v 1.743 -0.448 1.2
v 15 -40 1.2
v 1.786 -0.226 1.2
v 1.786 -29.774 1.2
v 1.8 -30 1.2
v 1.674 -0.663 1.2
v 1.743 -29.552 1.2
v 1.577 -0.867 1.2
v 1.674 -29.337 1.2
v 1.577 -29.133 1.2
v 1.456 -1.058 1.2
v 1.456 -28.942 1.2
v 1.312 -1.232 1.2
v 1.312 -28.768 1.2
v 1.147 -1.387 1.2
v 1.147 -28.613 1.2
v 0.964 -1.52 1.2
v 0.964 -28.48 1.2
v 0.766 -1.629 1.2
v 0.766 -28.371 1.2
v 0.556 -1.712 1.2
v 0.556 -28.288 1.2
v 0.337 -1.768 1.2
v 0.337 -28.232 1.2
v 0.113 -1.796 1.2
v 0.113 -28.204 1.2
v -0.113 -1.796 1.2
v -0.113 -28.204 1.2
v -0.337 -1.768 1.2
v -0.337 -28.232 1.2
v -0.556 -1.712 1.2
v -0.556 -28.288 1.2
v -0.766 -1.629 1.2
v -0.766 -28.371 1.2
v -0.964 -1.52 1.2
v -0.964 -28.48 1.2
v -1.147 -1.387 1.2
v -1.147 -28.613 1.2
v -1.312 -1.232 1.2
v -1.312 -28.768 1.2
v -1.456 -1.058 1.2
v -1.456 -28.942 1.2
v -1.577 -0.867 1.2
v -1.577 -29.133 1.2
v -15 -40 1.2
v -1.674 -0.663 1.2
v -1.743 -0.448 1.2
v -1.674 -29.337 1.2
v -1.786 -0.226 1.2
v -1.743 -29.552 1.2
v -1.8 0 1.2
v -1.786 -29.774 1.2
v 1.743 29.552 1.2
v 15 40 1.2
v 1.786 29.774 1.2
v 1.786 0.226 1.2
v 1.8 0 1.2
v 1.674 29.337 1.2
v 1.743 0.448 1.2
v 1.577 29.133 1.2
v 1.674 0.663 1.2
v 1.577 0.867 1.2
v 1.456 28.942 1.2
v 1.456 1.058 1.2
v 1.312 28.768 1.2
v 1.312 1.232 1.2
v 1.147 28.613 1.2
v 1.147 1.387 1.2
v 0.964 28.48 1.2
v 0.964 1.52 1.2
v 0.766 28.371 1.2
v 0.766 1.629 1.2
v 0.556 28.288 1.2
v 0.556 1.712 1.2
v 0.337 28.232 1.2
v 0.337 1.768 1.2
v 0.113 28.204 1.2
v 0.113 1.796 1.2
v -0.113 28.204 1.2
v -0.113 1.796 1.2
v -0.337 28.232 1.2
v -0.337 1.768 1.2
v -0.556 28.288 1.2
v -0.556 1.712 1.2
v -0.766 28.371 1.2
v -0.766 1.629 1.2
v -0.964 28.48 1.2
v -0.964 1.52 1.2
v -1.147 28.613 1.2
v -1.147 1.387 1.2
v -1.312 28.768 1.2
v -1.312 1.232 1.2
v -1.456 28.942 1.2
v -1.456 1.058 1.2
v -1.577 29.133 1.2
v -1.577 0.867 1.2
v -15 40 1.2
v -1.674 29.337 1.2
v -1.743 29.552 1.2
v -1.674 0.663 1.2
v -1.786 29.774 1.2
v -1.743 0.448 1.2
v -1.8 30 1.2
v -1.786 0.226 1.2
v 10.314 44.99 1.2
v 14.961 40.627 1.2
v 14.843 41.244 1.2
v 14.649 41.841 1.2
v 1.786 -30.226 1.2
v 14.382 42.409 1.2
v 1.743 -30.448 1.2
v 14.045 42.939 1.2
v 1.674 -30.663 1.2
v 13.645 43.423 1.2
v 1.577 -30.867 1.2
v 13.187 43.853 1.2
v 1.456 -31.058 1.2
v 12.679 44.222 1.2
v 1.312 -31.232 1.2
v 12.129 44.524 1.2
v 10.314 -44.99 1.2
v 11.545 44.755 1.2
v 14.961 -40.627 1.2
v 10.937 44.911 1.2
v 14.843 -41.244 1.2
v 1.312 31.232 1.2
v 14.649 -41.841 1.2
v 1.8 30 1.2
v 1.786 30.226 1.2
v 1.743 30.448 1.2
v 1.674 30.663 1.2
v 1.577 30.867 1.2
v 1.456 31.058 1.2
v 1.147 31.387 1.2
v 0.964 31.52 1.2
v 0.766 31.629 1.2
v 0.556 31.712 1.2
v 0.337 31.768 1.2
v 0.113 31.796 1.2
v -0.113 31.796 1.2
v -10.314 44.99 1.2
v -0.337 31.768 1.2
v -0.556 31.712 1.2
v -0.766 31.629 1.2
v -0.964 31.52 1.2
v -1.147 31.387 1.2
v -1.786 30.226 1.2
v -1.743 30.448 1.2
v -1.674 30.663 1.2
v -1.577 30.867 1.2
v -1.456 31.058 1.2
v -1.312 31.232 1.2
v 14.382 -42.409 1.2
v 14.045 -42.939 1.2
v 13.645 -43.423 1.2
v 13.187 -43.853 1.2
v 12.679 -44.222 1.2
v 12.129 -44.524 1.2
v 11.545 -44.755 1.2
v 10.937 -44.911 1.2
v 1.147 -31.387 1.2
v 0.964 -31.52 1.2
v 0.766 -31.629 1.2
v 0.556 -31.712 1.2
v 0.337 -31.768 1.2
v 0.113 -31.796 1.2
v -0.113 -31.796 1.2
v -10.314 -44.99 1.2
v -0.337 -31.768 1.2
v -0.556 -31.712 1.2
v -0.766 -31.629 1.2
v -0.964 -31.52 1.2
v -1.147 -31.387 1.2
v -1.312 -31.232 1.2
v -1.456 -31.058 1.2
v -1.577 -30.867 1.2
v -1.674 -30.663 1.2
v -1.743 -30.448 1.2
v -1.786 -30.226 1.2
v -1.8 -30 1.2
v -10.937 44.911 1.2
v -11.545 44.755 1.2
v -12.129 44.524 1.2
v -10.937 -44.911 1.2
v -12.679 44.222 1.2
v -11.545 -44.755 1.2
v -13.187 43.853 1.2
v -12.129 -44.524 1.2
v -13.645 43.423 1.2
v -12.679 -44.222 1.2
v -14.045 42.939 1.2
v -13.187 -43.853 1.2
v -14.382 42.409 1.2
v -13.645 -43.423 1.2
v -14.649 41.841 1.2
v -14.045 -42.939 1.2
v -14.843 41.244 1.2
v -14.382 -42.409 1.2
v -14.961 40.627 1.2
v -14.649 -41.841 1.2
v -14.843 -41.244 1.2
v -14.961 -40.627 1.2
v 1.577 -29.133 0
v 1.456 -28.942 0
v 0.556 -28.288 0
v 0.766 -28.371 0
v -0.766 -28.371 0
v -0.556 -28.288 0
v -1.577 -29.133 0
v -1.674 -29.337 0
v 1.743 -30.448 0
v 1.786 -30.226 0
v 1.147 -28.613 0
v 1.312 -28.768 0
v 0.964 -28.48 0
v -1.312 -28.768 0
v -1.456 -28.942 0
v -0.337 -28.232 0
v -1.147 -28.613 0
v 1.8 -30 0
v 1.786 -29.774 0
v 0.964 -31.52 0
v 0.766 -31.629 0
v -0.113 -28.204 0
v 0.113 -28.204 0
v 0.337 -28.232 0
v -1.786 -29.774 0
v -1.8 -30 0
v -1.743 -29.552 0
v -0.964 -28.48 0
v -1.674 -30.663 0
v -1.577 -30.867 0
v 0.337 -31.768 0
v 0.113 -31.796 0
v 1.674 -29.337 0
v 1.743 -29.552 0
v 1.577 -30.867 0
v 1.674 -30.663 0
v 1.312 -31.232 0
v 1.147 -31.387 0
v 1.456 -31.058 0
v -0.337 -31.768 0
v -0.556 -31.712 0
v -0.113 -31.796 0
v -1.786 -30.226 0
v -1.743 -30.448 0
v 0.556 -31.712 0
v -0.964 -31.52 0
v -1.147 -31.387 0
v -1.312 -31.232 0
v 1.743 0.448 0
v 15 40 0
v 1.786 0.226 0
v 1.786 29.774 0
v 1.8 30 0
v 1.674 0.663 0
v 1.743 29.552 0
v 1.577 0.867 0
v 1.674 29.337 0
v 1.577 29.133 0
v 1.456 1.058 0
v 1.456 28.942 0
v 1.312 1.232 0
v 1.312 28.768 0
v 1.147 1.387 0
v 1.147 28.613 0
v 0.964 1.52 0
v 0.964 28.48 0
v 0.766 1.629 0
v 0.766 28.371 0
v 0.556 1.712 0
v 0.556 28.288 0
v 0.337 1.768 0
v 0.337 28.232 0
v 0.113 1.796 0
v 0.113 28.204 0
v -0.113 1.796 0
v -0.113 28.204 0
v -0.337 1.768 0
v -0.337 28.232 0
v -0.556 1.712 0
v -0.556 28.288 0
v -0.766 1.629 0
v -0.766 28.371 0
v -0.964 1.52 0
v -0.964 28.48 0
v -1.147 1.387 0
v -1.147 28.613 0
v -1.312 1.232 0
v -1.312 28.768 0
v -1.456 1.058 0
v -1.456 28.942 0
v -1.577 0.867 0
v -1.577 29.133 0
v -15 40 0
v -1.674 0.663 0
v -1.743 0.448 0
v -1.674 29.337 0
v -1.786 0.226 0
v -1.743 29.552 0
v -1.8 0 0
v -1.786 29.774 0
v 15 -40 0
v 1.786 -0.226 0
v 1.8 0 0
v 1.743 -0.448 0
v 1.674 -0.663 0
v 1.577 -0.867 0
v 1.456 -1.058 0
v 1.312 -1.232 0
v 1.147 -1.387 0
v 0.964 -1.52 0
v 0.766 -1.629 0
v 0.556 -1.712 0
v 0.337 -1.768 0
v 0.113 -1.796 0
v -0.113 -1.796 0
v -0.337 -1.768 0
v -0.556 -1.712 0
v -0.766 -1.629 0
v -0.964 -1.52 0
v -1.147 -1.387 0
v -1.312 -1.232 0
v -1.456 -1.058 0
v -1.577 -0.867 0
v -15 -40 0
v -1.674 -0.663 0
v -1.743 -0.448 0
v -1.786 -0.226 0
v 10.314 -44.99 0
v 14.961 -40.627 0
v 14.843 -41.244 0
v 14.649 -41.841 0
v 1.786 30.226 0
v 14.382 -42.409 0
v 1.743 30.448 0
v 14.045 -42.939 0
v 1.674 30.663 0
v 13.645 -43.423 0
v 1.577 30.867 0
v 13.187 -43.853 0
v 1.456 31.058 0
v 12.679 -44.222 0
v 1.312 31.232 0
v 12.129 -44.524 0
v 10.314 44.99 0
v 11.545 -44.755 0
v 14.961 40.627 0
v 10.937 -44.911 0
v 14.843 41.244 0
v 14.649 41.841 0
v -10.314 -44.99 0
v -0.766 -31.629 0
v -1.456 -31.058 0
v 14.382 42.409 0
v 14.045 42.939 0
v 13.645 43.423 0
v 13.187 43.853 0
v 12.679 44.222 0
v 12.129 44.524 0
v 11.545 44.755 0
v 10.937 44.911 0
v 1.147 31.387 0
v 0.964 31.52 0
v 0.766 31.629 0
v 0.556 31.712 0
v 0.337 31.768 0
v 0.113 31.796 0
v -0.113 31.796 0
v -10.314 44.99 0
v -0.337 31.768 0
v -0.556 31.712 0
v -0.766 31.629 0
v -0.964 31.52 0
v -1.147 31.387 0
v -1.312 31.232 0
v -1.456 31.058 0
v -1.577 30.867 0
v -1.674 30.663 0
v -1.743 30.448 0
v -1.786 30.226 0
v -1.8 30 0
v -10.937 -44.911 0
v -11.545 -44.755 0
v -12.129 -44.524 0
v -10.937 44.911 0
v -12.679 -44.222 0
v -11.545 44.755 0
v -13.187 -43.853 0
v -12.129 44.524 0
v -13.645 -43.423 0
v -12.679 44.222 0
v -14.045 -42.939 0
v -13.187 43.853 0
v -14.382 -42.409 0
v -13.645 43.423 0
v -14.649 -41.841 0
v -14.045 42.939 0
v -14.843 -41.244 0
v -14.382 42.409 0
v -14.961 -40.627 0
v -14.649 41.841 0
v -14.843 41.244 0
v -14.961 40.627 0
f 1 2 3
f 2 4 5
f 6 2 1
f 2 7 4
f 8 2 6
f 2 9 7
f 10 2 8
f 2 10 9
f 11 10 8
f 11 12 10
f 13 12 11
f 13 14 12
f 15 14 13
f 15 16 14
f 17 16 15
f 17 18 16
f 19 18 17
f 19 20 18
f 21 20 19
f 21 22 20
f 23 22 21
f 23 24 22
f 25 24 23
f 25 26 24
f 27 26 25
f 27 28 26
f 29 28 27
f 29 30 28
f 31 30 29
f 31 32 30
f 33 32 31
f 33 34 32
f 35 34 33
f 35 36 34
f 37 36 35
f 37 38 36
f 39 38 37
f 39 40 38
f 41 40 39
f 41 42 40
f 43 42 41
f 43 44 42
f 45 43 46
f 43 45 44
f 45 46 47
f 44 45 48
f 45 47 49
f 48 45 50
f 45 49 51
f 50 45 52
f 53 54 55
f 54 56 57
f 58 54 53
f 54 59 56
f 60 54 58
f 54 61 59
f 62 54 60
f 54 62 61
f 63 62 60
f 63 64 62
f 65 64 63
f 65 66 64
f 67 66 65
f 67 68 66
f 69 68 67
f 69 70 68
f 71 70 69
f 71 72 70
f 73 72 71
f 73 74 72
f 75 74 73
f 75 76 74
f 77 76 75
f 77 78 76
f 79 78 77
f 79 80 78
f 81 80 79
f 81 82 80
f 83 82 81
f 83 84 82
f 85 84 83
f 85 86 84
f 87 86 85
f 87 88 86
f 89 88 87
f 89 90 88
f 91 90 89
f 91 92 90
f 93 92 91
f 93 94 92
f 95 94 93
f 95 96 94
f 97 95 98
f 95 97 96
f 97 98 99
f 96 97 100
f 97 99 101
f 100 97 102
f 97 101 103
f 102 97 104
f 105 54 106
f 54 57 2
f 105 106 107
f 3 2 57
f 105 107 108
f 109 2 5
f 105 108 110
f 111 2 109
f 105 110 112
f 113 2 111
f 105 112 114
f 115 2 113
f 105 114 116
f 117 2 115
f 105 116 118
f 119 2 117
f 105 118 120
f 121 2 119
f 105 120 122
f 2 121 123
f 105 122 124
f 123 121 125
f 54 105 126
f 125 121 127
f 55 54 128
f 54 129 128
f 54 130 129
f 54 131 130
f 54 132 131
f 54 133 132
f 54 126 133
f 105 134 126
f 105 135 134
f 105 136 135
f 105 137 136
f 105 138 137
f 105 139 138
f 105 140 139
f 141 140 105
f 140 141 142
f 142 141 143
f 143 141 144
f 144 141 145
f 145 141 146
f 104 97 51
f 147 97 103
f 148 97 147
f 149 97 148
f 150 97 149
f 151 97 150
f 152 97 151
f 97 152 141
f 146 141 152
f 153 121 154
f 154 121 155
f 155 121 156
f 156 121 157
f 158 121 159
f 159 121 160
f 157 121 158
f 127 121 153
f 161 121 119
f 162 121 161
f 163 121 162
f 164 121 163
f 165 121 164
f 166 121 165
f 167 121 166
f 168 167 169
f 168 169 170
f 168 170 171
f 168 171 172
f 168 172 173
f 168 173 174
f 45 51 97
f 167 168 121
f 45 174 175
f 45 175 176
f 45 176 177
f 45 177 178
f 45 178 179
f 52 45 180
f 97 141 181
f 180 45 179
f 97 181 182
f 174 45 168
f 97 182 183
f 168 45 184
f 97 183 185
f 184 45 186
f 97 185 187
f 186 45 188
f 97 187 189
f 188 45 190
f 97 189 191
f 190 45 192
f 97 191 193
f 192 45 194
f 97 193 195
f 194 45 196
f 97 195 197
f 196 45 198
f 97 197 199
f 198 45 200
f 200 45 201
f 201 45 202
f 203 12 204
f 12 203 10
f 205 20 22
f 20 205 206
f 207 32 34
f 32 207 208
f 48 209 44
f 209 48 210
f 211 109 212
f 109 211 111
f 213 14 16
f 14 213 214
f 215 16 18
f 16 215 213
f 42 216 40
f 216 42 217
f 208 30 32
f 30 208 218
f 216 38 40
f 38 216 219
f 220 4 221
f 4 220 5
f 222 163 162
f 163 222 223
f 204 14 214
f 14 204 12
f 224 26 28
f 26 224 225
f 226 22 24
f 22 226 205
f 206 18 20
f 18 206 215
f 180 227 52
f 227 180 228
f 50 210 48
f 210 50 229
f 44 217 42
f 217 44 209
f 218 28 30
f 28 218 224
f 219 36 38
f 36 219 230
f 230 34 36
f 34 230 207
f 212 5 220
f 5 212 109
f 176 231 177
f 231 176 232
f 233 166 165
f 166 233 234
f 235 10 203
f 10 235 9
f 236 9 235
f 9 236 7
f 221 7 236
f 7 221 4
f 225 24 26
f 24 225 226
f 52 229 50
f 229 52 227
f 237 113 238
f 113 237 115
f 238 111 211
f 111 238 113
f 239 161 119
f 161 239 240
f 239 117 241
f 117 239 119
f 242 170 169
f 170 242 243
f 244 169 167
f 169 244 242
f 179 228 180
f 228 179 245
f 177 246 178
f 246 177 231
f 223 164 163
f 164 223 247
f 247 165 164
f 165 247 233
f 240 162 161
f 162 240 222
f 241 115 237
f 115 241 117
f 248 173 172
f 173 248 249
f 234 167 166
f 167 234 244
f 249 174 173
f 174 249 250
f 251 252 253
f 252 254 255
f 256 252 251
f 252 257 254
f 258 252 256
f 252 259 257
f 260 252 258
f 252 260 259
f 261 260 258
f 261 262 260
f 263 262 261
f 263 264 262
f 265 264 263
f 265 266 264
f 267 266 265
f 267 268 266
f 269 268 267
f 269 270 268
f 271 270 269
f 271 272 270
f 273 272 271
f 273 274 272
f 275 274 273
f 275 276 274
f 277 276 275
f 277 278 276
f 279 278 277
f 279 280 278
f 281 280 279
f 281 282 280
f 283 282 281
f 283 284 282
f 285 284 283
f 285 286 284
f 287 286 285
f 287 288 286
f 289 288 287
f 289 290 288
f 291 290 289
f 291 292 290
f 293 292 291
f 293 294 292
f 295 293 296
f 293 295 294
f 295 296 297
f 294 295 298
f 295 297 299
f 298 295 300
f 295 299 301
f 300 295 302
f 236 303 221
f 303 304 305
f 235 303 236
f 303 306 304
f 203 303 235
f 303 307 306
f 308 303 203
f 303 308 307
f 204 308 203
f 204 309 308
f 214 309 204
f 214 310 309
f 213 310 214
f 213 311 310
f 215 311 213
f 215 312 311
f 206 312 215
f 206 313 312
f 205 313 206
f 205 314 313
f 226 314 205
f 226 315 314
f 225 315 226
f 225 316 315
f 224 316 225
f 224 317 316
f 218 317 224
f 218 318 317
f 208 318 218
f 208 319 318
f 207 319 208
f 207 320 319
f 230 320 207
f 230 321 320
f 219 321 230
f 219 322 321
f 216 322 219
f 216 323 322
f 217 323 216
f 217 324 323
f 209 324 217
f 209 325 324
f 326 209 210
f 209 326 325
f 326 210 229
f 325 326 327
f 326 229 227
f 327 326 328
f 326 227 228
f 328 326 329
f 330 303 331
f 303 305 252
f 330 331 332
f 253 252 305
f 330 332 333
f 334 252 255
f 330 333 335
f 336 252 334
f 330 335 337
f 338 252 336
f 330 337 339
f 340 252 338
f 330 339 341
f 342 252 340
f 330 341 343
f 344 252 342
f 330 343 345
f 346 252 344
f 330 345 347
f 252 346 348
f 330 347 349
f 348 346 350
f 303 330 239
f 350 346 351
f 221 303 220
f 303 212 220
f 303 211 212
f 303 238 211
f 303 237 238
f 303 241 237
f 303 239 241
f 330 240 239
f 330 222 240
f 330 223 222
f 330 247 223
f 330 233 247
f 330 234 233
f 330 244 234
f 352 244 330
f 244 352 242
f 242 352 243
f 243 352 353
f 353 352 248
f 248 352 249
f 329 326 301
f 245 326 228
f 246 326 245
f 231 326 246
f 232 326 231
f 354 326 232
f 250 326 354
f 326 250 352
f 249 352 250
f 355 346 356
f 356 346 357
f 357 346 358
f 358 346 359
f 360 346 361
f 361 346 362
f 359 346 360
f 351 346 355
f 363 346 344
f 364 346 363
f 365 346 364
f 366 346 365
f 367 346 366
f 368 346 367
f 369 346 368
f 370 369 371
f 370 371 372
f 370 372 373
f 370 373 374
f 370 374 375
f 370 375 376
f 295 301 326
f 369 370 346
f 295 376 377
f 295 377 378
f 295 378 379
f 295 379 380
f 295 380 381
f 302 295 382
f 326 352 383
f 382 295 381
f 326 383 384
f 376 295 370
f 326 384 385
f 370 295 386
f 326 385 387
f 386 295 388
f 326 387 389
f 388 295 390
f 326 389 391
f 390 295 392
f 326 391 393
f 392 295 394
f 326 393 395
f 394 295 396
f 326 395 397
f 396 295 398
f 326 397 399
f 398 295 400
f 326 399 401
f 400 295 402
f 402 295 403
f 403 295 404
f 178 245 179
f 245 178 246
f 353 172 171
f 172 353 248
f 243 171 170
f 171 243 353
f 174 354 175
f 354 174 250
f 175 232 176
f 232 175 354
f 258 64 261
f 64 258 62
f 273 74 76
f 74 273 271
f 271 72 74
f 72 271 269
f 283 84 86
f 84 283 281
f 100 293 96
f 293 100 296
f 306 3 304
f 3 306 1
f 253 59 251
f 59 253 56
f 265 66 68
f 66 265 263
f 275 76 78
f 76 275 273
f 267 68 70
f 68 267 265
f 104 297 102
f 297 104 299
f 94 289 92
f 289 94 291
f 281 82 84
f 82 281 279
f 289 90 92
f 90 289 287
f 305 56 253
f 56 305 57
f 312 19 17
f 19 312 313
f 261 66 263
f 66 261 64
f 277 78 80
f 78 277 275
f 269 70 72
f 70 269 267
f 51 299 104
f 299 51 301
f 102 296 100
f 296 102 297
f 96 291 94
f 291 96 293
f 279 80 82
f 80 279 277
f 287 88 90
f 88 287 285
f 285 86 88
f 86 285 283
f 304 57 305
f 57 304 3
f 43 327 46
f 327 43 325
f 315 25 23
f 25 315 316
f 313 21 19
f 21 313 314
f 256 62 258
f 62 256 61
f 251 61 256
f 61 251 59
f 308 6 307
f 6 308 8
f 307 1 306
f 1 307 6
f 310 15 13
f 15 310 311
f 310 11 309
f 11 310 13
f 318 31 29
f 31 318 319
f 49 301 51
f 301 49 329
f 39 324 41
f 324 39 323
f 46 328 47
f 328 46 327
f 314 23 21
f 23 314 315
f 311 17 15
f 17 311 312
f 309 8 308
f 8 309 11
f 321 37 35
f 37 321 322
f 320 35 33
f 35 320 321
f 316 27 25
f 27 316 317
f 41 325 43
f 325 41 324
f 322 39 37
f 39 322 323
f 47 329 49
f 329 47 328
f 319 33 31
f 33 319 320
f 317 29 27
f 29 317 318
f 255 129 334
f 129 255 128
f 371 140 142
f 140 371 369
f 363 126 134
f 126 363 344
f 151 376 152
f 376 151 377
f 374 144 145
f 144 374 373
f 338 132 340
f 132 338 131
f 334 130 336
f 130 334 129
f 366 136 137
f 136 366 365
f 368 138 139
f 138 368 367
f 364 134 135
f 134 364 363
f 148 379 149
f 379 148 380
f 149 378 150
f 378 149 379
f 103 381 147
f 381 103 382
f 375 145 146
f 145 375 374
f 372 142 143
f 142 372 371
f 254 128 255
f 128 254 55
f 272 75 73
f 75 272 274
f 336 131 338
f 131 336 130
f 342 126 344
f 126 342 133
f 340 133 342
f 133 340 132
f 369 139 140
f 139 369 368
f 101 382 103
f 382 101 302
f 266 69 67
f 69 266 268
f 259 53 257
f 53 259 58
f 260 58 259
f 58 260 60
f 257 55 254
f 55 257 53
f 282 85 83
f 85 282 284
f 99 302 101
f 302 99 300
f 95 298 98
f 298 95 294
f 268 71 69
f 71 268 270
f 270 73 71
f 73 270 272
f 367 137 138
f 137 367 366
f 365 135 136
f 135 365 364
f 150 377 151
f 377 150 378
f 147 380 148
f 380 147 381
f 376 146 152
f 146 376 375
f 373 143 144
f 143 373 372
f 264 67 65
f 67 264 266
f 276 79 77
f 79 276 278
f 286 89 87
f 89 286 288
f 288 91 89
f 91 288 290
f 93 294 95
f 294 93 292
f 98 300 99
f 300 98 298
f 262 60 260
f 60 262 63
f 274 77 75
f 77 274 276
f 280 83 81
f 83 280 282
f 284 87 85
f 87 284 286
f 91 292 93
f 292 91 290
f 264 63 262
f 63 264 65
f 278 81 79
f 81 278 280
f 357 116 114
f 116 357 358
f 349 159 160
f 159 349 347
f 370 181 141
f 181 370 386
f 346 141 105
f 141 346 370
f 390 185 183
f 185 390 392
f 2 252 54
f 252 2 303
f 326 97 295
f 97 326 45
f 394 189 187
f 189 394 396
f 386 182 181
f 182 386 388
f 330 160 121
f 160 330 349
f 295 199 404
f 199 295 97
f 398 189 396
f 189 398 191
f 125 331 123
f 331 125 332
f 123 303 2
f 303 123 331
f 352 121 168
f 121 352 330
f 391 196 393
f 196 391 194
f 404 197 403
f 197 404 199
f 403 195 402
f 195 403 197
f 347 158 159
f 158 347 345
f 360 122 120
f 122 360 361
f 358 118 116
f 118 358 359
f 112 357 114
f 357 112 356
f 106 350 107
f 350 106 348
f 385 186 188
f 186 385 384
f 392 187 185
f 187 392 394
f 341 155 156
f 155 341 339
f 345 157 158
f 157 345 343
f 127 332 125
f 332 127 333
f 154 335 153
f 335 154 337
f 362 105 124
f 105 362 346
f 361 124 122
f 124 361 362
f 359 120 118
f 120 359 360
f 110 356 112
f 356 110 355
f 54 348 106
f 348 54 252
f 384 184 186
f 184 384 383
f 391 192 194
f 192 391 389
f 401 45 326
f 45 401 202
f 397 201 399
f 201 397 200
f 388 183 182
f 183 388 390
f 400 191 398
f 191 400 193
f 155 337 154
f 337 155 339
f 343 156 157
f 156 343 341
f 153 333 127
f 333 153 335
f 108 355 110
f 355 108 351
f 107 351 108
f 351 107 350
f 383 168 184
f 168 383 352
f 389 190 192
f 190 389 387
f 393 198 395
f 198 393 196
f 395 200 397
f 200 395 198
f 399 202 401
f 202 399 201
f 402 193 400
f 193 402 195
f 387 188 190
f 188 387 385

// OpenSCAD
$fn = 50;


difference() {
	union() {
		hull() {
			translate(v = [-10.0000000000, 40.0000000000, 0]) {
				cylinder(h = 12, r = 5);
			}
			translate(v = [10.0000000000, 40.0000000000, 0]) {
				cylinder(h = 12, r = 5);
			}
			translate(v = [-10.0000000000, -40.0000000000, 0]) {
				cylinder(h = 12, r = 5);
			}
			translate(v = [10.0000000000, -40.0000000000, 0]) {
				cylinder(h = 12, r = 5);
			}
		}
	}
	union() {
		translate(v = [0, 0, 1.2000000000]) {
			hull() {
				translate(v = [-10.0000000000, 40.0000000000, 0]) {
					cylinder(h = 10.8000000000, r = 3.8000000000);
				}
				translate(v = [10.0000000000, 40.0000000000, 0]) {
					cylinder(h = 10.8000000000, r = 3.8000000000);
				}
				translate(v = [-10.0000000000, -40.0000000000, 0]) {
					cylinder(h = 10.8000000000, r = 3.8000000000);
				}
				translate(v = [10.0000000000, -40.0000000000, 0]) {
					cylinder(h = 10.8000000000, r = 3.8000000000);
				}
			}
		}
		#translate(v = [0.0000000000, -30.0000000000, 0]) {
			cylinder(h = 1.2000000000, r = 1.8000000000);
		}
		#cylinder(h = 1.2000000000, r = 1.8000000000);
		#translate(v = [0.0000000000, 30.0000000000, 0]) {
			cylinder(h = 1.2000000000, r = 1.8000000000);
		}
		translate(v = [-250.0000000000, -250.0000000000, 1.2000000000]) {
			cube(size = [500, 500, 500]);
		}
		translate(v = [-250.0000000000, -250.0000000000, 1.2000000000]) {
			cube(size = [500, 500, 500]);
		}
		translate(v = [-250.0000000000, -250.0000000000, 1.2000000000]) {
			cube(size = [500, 500, 500]);
		}
	}
}
